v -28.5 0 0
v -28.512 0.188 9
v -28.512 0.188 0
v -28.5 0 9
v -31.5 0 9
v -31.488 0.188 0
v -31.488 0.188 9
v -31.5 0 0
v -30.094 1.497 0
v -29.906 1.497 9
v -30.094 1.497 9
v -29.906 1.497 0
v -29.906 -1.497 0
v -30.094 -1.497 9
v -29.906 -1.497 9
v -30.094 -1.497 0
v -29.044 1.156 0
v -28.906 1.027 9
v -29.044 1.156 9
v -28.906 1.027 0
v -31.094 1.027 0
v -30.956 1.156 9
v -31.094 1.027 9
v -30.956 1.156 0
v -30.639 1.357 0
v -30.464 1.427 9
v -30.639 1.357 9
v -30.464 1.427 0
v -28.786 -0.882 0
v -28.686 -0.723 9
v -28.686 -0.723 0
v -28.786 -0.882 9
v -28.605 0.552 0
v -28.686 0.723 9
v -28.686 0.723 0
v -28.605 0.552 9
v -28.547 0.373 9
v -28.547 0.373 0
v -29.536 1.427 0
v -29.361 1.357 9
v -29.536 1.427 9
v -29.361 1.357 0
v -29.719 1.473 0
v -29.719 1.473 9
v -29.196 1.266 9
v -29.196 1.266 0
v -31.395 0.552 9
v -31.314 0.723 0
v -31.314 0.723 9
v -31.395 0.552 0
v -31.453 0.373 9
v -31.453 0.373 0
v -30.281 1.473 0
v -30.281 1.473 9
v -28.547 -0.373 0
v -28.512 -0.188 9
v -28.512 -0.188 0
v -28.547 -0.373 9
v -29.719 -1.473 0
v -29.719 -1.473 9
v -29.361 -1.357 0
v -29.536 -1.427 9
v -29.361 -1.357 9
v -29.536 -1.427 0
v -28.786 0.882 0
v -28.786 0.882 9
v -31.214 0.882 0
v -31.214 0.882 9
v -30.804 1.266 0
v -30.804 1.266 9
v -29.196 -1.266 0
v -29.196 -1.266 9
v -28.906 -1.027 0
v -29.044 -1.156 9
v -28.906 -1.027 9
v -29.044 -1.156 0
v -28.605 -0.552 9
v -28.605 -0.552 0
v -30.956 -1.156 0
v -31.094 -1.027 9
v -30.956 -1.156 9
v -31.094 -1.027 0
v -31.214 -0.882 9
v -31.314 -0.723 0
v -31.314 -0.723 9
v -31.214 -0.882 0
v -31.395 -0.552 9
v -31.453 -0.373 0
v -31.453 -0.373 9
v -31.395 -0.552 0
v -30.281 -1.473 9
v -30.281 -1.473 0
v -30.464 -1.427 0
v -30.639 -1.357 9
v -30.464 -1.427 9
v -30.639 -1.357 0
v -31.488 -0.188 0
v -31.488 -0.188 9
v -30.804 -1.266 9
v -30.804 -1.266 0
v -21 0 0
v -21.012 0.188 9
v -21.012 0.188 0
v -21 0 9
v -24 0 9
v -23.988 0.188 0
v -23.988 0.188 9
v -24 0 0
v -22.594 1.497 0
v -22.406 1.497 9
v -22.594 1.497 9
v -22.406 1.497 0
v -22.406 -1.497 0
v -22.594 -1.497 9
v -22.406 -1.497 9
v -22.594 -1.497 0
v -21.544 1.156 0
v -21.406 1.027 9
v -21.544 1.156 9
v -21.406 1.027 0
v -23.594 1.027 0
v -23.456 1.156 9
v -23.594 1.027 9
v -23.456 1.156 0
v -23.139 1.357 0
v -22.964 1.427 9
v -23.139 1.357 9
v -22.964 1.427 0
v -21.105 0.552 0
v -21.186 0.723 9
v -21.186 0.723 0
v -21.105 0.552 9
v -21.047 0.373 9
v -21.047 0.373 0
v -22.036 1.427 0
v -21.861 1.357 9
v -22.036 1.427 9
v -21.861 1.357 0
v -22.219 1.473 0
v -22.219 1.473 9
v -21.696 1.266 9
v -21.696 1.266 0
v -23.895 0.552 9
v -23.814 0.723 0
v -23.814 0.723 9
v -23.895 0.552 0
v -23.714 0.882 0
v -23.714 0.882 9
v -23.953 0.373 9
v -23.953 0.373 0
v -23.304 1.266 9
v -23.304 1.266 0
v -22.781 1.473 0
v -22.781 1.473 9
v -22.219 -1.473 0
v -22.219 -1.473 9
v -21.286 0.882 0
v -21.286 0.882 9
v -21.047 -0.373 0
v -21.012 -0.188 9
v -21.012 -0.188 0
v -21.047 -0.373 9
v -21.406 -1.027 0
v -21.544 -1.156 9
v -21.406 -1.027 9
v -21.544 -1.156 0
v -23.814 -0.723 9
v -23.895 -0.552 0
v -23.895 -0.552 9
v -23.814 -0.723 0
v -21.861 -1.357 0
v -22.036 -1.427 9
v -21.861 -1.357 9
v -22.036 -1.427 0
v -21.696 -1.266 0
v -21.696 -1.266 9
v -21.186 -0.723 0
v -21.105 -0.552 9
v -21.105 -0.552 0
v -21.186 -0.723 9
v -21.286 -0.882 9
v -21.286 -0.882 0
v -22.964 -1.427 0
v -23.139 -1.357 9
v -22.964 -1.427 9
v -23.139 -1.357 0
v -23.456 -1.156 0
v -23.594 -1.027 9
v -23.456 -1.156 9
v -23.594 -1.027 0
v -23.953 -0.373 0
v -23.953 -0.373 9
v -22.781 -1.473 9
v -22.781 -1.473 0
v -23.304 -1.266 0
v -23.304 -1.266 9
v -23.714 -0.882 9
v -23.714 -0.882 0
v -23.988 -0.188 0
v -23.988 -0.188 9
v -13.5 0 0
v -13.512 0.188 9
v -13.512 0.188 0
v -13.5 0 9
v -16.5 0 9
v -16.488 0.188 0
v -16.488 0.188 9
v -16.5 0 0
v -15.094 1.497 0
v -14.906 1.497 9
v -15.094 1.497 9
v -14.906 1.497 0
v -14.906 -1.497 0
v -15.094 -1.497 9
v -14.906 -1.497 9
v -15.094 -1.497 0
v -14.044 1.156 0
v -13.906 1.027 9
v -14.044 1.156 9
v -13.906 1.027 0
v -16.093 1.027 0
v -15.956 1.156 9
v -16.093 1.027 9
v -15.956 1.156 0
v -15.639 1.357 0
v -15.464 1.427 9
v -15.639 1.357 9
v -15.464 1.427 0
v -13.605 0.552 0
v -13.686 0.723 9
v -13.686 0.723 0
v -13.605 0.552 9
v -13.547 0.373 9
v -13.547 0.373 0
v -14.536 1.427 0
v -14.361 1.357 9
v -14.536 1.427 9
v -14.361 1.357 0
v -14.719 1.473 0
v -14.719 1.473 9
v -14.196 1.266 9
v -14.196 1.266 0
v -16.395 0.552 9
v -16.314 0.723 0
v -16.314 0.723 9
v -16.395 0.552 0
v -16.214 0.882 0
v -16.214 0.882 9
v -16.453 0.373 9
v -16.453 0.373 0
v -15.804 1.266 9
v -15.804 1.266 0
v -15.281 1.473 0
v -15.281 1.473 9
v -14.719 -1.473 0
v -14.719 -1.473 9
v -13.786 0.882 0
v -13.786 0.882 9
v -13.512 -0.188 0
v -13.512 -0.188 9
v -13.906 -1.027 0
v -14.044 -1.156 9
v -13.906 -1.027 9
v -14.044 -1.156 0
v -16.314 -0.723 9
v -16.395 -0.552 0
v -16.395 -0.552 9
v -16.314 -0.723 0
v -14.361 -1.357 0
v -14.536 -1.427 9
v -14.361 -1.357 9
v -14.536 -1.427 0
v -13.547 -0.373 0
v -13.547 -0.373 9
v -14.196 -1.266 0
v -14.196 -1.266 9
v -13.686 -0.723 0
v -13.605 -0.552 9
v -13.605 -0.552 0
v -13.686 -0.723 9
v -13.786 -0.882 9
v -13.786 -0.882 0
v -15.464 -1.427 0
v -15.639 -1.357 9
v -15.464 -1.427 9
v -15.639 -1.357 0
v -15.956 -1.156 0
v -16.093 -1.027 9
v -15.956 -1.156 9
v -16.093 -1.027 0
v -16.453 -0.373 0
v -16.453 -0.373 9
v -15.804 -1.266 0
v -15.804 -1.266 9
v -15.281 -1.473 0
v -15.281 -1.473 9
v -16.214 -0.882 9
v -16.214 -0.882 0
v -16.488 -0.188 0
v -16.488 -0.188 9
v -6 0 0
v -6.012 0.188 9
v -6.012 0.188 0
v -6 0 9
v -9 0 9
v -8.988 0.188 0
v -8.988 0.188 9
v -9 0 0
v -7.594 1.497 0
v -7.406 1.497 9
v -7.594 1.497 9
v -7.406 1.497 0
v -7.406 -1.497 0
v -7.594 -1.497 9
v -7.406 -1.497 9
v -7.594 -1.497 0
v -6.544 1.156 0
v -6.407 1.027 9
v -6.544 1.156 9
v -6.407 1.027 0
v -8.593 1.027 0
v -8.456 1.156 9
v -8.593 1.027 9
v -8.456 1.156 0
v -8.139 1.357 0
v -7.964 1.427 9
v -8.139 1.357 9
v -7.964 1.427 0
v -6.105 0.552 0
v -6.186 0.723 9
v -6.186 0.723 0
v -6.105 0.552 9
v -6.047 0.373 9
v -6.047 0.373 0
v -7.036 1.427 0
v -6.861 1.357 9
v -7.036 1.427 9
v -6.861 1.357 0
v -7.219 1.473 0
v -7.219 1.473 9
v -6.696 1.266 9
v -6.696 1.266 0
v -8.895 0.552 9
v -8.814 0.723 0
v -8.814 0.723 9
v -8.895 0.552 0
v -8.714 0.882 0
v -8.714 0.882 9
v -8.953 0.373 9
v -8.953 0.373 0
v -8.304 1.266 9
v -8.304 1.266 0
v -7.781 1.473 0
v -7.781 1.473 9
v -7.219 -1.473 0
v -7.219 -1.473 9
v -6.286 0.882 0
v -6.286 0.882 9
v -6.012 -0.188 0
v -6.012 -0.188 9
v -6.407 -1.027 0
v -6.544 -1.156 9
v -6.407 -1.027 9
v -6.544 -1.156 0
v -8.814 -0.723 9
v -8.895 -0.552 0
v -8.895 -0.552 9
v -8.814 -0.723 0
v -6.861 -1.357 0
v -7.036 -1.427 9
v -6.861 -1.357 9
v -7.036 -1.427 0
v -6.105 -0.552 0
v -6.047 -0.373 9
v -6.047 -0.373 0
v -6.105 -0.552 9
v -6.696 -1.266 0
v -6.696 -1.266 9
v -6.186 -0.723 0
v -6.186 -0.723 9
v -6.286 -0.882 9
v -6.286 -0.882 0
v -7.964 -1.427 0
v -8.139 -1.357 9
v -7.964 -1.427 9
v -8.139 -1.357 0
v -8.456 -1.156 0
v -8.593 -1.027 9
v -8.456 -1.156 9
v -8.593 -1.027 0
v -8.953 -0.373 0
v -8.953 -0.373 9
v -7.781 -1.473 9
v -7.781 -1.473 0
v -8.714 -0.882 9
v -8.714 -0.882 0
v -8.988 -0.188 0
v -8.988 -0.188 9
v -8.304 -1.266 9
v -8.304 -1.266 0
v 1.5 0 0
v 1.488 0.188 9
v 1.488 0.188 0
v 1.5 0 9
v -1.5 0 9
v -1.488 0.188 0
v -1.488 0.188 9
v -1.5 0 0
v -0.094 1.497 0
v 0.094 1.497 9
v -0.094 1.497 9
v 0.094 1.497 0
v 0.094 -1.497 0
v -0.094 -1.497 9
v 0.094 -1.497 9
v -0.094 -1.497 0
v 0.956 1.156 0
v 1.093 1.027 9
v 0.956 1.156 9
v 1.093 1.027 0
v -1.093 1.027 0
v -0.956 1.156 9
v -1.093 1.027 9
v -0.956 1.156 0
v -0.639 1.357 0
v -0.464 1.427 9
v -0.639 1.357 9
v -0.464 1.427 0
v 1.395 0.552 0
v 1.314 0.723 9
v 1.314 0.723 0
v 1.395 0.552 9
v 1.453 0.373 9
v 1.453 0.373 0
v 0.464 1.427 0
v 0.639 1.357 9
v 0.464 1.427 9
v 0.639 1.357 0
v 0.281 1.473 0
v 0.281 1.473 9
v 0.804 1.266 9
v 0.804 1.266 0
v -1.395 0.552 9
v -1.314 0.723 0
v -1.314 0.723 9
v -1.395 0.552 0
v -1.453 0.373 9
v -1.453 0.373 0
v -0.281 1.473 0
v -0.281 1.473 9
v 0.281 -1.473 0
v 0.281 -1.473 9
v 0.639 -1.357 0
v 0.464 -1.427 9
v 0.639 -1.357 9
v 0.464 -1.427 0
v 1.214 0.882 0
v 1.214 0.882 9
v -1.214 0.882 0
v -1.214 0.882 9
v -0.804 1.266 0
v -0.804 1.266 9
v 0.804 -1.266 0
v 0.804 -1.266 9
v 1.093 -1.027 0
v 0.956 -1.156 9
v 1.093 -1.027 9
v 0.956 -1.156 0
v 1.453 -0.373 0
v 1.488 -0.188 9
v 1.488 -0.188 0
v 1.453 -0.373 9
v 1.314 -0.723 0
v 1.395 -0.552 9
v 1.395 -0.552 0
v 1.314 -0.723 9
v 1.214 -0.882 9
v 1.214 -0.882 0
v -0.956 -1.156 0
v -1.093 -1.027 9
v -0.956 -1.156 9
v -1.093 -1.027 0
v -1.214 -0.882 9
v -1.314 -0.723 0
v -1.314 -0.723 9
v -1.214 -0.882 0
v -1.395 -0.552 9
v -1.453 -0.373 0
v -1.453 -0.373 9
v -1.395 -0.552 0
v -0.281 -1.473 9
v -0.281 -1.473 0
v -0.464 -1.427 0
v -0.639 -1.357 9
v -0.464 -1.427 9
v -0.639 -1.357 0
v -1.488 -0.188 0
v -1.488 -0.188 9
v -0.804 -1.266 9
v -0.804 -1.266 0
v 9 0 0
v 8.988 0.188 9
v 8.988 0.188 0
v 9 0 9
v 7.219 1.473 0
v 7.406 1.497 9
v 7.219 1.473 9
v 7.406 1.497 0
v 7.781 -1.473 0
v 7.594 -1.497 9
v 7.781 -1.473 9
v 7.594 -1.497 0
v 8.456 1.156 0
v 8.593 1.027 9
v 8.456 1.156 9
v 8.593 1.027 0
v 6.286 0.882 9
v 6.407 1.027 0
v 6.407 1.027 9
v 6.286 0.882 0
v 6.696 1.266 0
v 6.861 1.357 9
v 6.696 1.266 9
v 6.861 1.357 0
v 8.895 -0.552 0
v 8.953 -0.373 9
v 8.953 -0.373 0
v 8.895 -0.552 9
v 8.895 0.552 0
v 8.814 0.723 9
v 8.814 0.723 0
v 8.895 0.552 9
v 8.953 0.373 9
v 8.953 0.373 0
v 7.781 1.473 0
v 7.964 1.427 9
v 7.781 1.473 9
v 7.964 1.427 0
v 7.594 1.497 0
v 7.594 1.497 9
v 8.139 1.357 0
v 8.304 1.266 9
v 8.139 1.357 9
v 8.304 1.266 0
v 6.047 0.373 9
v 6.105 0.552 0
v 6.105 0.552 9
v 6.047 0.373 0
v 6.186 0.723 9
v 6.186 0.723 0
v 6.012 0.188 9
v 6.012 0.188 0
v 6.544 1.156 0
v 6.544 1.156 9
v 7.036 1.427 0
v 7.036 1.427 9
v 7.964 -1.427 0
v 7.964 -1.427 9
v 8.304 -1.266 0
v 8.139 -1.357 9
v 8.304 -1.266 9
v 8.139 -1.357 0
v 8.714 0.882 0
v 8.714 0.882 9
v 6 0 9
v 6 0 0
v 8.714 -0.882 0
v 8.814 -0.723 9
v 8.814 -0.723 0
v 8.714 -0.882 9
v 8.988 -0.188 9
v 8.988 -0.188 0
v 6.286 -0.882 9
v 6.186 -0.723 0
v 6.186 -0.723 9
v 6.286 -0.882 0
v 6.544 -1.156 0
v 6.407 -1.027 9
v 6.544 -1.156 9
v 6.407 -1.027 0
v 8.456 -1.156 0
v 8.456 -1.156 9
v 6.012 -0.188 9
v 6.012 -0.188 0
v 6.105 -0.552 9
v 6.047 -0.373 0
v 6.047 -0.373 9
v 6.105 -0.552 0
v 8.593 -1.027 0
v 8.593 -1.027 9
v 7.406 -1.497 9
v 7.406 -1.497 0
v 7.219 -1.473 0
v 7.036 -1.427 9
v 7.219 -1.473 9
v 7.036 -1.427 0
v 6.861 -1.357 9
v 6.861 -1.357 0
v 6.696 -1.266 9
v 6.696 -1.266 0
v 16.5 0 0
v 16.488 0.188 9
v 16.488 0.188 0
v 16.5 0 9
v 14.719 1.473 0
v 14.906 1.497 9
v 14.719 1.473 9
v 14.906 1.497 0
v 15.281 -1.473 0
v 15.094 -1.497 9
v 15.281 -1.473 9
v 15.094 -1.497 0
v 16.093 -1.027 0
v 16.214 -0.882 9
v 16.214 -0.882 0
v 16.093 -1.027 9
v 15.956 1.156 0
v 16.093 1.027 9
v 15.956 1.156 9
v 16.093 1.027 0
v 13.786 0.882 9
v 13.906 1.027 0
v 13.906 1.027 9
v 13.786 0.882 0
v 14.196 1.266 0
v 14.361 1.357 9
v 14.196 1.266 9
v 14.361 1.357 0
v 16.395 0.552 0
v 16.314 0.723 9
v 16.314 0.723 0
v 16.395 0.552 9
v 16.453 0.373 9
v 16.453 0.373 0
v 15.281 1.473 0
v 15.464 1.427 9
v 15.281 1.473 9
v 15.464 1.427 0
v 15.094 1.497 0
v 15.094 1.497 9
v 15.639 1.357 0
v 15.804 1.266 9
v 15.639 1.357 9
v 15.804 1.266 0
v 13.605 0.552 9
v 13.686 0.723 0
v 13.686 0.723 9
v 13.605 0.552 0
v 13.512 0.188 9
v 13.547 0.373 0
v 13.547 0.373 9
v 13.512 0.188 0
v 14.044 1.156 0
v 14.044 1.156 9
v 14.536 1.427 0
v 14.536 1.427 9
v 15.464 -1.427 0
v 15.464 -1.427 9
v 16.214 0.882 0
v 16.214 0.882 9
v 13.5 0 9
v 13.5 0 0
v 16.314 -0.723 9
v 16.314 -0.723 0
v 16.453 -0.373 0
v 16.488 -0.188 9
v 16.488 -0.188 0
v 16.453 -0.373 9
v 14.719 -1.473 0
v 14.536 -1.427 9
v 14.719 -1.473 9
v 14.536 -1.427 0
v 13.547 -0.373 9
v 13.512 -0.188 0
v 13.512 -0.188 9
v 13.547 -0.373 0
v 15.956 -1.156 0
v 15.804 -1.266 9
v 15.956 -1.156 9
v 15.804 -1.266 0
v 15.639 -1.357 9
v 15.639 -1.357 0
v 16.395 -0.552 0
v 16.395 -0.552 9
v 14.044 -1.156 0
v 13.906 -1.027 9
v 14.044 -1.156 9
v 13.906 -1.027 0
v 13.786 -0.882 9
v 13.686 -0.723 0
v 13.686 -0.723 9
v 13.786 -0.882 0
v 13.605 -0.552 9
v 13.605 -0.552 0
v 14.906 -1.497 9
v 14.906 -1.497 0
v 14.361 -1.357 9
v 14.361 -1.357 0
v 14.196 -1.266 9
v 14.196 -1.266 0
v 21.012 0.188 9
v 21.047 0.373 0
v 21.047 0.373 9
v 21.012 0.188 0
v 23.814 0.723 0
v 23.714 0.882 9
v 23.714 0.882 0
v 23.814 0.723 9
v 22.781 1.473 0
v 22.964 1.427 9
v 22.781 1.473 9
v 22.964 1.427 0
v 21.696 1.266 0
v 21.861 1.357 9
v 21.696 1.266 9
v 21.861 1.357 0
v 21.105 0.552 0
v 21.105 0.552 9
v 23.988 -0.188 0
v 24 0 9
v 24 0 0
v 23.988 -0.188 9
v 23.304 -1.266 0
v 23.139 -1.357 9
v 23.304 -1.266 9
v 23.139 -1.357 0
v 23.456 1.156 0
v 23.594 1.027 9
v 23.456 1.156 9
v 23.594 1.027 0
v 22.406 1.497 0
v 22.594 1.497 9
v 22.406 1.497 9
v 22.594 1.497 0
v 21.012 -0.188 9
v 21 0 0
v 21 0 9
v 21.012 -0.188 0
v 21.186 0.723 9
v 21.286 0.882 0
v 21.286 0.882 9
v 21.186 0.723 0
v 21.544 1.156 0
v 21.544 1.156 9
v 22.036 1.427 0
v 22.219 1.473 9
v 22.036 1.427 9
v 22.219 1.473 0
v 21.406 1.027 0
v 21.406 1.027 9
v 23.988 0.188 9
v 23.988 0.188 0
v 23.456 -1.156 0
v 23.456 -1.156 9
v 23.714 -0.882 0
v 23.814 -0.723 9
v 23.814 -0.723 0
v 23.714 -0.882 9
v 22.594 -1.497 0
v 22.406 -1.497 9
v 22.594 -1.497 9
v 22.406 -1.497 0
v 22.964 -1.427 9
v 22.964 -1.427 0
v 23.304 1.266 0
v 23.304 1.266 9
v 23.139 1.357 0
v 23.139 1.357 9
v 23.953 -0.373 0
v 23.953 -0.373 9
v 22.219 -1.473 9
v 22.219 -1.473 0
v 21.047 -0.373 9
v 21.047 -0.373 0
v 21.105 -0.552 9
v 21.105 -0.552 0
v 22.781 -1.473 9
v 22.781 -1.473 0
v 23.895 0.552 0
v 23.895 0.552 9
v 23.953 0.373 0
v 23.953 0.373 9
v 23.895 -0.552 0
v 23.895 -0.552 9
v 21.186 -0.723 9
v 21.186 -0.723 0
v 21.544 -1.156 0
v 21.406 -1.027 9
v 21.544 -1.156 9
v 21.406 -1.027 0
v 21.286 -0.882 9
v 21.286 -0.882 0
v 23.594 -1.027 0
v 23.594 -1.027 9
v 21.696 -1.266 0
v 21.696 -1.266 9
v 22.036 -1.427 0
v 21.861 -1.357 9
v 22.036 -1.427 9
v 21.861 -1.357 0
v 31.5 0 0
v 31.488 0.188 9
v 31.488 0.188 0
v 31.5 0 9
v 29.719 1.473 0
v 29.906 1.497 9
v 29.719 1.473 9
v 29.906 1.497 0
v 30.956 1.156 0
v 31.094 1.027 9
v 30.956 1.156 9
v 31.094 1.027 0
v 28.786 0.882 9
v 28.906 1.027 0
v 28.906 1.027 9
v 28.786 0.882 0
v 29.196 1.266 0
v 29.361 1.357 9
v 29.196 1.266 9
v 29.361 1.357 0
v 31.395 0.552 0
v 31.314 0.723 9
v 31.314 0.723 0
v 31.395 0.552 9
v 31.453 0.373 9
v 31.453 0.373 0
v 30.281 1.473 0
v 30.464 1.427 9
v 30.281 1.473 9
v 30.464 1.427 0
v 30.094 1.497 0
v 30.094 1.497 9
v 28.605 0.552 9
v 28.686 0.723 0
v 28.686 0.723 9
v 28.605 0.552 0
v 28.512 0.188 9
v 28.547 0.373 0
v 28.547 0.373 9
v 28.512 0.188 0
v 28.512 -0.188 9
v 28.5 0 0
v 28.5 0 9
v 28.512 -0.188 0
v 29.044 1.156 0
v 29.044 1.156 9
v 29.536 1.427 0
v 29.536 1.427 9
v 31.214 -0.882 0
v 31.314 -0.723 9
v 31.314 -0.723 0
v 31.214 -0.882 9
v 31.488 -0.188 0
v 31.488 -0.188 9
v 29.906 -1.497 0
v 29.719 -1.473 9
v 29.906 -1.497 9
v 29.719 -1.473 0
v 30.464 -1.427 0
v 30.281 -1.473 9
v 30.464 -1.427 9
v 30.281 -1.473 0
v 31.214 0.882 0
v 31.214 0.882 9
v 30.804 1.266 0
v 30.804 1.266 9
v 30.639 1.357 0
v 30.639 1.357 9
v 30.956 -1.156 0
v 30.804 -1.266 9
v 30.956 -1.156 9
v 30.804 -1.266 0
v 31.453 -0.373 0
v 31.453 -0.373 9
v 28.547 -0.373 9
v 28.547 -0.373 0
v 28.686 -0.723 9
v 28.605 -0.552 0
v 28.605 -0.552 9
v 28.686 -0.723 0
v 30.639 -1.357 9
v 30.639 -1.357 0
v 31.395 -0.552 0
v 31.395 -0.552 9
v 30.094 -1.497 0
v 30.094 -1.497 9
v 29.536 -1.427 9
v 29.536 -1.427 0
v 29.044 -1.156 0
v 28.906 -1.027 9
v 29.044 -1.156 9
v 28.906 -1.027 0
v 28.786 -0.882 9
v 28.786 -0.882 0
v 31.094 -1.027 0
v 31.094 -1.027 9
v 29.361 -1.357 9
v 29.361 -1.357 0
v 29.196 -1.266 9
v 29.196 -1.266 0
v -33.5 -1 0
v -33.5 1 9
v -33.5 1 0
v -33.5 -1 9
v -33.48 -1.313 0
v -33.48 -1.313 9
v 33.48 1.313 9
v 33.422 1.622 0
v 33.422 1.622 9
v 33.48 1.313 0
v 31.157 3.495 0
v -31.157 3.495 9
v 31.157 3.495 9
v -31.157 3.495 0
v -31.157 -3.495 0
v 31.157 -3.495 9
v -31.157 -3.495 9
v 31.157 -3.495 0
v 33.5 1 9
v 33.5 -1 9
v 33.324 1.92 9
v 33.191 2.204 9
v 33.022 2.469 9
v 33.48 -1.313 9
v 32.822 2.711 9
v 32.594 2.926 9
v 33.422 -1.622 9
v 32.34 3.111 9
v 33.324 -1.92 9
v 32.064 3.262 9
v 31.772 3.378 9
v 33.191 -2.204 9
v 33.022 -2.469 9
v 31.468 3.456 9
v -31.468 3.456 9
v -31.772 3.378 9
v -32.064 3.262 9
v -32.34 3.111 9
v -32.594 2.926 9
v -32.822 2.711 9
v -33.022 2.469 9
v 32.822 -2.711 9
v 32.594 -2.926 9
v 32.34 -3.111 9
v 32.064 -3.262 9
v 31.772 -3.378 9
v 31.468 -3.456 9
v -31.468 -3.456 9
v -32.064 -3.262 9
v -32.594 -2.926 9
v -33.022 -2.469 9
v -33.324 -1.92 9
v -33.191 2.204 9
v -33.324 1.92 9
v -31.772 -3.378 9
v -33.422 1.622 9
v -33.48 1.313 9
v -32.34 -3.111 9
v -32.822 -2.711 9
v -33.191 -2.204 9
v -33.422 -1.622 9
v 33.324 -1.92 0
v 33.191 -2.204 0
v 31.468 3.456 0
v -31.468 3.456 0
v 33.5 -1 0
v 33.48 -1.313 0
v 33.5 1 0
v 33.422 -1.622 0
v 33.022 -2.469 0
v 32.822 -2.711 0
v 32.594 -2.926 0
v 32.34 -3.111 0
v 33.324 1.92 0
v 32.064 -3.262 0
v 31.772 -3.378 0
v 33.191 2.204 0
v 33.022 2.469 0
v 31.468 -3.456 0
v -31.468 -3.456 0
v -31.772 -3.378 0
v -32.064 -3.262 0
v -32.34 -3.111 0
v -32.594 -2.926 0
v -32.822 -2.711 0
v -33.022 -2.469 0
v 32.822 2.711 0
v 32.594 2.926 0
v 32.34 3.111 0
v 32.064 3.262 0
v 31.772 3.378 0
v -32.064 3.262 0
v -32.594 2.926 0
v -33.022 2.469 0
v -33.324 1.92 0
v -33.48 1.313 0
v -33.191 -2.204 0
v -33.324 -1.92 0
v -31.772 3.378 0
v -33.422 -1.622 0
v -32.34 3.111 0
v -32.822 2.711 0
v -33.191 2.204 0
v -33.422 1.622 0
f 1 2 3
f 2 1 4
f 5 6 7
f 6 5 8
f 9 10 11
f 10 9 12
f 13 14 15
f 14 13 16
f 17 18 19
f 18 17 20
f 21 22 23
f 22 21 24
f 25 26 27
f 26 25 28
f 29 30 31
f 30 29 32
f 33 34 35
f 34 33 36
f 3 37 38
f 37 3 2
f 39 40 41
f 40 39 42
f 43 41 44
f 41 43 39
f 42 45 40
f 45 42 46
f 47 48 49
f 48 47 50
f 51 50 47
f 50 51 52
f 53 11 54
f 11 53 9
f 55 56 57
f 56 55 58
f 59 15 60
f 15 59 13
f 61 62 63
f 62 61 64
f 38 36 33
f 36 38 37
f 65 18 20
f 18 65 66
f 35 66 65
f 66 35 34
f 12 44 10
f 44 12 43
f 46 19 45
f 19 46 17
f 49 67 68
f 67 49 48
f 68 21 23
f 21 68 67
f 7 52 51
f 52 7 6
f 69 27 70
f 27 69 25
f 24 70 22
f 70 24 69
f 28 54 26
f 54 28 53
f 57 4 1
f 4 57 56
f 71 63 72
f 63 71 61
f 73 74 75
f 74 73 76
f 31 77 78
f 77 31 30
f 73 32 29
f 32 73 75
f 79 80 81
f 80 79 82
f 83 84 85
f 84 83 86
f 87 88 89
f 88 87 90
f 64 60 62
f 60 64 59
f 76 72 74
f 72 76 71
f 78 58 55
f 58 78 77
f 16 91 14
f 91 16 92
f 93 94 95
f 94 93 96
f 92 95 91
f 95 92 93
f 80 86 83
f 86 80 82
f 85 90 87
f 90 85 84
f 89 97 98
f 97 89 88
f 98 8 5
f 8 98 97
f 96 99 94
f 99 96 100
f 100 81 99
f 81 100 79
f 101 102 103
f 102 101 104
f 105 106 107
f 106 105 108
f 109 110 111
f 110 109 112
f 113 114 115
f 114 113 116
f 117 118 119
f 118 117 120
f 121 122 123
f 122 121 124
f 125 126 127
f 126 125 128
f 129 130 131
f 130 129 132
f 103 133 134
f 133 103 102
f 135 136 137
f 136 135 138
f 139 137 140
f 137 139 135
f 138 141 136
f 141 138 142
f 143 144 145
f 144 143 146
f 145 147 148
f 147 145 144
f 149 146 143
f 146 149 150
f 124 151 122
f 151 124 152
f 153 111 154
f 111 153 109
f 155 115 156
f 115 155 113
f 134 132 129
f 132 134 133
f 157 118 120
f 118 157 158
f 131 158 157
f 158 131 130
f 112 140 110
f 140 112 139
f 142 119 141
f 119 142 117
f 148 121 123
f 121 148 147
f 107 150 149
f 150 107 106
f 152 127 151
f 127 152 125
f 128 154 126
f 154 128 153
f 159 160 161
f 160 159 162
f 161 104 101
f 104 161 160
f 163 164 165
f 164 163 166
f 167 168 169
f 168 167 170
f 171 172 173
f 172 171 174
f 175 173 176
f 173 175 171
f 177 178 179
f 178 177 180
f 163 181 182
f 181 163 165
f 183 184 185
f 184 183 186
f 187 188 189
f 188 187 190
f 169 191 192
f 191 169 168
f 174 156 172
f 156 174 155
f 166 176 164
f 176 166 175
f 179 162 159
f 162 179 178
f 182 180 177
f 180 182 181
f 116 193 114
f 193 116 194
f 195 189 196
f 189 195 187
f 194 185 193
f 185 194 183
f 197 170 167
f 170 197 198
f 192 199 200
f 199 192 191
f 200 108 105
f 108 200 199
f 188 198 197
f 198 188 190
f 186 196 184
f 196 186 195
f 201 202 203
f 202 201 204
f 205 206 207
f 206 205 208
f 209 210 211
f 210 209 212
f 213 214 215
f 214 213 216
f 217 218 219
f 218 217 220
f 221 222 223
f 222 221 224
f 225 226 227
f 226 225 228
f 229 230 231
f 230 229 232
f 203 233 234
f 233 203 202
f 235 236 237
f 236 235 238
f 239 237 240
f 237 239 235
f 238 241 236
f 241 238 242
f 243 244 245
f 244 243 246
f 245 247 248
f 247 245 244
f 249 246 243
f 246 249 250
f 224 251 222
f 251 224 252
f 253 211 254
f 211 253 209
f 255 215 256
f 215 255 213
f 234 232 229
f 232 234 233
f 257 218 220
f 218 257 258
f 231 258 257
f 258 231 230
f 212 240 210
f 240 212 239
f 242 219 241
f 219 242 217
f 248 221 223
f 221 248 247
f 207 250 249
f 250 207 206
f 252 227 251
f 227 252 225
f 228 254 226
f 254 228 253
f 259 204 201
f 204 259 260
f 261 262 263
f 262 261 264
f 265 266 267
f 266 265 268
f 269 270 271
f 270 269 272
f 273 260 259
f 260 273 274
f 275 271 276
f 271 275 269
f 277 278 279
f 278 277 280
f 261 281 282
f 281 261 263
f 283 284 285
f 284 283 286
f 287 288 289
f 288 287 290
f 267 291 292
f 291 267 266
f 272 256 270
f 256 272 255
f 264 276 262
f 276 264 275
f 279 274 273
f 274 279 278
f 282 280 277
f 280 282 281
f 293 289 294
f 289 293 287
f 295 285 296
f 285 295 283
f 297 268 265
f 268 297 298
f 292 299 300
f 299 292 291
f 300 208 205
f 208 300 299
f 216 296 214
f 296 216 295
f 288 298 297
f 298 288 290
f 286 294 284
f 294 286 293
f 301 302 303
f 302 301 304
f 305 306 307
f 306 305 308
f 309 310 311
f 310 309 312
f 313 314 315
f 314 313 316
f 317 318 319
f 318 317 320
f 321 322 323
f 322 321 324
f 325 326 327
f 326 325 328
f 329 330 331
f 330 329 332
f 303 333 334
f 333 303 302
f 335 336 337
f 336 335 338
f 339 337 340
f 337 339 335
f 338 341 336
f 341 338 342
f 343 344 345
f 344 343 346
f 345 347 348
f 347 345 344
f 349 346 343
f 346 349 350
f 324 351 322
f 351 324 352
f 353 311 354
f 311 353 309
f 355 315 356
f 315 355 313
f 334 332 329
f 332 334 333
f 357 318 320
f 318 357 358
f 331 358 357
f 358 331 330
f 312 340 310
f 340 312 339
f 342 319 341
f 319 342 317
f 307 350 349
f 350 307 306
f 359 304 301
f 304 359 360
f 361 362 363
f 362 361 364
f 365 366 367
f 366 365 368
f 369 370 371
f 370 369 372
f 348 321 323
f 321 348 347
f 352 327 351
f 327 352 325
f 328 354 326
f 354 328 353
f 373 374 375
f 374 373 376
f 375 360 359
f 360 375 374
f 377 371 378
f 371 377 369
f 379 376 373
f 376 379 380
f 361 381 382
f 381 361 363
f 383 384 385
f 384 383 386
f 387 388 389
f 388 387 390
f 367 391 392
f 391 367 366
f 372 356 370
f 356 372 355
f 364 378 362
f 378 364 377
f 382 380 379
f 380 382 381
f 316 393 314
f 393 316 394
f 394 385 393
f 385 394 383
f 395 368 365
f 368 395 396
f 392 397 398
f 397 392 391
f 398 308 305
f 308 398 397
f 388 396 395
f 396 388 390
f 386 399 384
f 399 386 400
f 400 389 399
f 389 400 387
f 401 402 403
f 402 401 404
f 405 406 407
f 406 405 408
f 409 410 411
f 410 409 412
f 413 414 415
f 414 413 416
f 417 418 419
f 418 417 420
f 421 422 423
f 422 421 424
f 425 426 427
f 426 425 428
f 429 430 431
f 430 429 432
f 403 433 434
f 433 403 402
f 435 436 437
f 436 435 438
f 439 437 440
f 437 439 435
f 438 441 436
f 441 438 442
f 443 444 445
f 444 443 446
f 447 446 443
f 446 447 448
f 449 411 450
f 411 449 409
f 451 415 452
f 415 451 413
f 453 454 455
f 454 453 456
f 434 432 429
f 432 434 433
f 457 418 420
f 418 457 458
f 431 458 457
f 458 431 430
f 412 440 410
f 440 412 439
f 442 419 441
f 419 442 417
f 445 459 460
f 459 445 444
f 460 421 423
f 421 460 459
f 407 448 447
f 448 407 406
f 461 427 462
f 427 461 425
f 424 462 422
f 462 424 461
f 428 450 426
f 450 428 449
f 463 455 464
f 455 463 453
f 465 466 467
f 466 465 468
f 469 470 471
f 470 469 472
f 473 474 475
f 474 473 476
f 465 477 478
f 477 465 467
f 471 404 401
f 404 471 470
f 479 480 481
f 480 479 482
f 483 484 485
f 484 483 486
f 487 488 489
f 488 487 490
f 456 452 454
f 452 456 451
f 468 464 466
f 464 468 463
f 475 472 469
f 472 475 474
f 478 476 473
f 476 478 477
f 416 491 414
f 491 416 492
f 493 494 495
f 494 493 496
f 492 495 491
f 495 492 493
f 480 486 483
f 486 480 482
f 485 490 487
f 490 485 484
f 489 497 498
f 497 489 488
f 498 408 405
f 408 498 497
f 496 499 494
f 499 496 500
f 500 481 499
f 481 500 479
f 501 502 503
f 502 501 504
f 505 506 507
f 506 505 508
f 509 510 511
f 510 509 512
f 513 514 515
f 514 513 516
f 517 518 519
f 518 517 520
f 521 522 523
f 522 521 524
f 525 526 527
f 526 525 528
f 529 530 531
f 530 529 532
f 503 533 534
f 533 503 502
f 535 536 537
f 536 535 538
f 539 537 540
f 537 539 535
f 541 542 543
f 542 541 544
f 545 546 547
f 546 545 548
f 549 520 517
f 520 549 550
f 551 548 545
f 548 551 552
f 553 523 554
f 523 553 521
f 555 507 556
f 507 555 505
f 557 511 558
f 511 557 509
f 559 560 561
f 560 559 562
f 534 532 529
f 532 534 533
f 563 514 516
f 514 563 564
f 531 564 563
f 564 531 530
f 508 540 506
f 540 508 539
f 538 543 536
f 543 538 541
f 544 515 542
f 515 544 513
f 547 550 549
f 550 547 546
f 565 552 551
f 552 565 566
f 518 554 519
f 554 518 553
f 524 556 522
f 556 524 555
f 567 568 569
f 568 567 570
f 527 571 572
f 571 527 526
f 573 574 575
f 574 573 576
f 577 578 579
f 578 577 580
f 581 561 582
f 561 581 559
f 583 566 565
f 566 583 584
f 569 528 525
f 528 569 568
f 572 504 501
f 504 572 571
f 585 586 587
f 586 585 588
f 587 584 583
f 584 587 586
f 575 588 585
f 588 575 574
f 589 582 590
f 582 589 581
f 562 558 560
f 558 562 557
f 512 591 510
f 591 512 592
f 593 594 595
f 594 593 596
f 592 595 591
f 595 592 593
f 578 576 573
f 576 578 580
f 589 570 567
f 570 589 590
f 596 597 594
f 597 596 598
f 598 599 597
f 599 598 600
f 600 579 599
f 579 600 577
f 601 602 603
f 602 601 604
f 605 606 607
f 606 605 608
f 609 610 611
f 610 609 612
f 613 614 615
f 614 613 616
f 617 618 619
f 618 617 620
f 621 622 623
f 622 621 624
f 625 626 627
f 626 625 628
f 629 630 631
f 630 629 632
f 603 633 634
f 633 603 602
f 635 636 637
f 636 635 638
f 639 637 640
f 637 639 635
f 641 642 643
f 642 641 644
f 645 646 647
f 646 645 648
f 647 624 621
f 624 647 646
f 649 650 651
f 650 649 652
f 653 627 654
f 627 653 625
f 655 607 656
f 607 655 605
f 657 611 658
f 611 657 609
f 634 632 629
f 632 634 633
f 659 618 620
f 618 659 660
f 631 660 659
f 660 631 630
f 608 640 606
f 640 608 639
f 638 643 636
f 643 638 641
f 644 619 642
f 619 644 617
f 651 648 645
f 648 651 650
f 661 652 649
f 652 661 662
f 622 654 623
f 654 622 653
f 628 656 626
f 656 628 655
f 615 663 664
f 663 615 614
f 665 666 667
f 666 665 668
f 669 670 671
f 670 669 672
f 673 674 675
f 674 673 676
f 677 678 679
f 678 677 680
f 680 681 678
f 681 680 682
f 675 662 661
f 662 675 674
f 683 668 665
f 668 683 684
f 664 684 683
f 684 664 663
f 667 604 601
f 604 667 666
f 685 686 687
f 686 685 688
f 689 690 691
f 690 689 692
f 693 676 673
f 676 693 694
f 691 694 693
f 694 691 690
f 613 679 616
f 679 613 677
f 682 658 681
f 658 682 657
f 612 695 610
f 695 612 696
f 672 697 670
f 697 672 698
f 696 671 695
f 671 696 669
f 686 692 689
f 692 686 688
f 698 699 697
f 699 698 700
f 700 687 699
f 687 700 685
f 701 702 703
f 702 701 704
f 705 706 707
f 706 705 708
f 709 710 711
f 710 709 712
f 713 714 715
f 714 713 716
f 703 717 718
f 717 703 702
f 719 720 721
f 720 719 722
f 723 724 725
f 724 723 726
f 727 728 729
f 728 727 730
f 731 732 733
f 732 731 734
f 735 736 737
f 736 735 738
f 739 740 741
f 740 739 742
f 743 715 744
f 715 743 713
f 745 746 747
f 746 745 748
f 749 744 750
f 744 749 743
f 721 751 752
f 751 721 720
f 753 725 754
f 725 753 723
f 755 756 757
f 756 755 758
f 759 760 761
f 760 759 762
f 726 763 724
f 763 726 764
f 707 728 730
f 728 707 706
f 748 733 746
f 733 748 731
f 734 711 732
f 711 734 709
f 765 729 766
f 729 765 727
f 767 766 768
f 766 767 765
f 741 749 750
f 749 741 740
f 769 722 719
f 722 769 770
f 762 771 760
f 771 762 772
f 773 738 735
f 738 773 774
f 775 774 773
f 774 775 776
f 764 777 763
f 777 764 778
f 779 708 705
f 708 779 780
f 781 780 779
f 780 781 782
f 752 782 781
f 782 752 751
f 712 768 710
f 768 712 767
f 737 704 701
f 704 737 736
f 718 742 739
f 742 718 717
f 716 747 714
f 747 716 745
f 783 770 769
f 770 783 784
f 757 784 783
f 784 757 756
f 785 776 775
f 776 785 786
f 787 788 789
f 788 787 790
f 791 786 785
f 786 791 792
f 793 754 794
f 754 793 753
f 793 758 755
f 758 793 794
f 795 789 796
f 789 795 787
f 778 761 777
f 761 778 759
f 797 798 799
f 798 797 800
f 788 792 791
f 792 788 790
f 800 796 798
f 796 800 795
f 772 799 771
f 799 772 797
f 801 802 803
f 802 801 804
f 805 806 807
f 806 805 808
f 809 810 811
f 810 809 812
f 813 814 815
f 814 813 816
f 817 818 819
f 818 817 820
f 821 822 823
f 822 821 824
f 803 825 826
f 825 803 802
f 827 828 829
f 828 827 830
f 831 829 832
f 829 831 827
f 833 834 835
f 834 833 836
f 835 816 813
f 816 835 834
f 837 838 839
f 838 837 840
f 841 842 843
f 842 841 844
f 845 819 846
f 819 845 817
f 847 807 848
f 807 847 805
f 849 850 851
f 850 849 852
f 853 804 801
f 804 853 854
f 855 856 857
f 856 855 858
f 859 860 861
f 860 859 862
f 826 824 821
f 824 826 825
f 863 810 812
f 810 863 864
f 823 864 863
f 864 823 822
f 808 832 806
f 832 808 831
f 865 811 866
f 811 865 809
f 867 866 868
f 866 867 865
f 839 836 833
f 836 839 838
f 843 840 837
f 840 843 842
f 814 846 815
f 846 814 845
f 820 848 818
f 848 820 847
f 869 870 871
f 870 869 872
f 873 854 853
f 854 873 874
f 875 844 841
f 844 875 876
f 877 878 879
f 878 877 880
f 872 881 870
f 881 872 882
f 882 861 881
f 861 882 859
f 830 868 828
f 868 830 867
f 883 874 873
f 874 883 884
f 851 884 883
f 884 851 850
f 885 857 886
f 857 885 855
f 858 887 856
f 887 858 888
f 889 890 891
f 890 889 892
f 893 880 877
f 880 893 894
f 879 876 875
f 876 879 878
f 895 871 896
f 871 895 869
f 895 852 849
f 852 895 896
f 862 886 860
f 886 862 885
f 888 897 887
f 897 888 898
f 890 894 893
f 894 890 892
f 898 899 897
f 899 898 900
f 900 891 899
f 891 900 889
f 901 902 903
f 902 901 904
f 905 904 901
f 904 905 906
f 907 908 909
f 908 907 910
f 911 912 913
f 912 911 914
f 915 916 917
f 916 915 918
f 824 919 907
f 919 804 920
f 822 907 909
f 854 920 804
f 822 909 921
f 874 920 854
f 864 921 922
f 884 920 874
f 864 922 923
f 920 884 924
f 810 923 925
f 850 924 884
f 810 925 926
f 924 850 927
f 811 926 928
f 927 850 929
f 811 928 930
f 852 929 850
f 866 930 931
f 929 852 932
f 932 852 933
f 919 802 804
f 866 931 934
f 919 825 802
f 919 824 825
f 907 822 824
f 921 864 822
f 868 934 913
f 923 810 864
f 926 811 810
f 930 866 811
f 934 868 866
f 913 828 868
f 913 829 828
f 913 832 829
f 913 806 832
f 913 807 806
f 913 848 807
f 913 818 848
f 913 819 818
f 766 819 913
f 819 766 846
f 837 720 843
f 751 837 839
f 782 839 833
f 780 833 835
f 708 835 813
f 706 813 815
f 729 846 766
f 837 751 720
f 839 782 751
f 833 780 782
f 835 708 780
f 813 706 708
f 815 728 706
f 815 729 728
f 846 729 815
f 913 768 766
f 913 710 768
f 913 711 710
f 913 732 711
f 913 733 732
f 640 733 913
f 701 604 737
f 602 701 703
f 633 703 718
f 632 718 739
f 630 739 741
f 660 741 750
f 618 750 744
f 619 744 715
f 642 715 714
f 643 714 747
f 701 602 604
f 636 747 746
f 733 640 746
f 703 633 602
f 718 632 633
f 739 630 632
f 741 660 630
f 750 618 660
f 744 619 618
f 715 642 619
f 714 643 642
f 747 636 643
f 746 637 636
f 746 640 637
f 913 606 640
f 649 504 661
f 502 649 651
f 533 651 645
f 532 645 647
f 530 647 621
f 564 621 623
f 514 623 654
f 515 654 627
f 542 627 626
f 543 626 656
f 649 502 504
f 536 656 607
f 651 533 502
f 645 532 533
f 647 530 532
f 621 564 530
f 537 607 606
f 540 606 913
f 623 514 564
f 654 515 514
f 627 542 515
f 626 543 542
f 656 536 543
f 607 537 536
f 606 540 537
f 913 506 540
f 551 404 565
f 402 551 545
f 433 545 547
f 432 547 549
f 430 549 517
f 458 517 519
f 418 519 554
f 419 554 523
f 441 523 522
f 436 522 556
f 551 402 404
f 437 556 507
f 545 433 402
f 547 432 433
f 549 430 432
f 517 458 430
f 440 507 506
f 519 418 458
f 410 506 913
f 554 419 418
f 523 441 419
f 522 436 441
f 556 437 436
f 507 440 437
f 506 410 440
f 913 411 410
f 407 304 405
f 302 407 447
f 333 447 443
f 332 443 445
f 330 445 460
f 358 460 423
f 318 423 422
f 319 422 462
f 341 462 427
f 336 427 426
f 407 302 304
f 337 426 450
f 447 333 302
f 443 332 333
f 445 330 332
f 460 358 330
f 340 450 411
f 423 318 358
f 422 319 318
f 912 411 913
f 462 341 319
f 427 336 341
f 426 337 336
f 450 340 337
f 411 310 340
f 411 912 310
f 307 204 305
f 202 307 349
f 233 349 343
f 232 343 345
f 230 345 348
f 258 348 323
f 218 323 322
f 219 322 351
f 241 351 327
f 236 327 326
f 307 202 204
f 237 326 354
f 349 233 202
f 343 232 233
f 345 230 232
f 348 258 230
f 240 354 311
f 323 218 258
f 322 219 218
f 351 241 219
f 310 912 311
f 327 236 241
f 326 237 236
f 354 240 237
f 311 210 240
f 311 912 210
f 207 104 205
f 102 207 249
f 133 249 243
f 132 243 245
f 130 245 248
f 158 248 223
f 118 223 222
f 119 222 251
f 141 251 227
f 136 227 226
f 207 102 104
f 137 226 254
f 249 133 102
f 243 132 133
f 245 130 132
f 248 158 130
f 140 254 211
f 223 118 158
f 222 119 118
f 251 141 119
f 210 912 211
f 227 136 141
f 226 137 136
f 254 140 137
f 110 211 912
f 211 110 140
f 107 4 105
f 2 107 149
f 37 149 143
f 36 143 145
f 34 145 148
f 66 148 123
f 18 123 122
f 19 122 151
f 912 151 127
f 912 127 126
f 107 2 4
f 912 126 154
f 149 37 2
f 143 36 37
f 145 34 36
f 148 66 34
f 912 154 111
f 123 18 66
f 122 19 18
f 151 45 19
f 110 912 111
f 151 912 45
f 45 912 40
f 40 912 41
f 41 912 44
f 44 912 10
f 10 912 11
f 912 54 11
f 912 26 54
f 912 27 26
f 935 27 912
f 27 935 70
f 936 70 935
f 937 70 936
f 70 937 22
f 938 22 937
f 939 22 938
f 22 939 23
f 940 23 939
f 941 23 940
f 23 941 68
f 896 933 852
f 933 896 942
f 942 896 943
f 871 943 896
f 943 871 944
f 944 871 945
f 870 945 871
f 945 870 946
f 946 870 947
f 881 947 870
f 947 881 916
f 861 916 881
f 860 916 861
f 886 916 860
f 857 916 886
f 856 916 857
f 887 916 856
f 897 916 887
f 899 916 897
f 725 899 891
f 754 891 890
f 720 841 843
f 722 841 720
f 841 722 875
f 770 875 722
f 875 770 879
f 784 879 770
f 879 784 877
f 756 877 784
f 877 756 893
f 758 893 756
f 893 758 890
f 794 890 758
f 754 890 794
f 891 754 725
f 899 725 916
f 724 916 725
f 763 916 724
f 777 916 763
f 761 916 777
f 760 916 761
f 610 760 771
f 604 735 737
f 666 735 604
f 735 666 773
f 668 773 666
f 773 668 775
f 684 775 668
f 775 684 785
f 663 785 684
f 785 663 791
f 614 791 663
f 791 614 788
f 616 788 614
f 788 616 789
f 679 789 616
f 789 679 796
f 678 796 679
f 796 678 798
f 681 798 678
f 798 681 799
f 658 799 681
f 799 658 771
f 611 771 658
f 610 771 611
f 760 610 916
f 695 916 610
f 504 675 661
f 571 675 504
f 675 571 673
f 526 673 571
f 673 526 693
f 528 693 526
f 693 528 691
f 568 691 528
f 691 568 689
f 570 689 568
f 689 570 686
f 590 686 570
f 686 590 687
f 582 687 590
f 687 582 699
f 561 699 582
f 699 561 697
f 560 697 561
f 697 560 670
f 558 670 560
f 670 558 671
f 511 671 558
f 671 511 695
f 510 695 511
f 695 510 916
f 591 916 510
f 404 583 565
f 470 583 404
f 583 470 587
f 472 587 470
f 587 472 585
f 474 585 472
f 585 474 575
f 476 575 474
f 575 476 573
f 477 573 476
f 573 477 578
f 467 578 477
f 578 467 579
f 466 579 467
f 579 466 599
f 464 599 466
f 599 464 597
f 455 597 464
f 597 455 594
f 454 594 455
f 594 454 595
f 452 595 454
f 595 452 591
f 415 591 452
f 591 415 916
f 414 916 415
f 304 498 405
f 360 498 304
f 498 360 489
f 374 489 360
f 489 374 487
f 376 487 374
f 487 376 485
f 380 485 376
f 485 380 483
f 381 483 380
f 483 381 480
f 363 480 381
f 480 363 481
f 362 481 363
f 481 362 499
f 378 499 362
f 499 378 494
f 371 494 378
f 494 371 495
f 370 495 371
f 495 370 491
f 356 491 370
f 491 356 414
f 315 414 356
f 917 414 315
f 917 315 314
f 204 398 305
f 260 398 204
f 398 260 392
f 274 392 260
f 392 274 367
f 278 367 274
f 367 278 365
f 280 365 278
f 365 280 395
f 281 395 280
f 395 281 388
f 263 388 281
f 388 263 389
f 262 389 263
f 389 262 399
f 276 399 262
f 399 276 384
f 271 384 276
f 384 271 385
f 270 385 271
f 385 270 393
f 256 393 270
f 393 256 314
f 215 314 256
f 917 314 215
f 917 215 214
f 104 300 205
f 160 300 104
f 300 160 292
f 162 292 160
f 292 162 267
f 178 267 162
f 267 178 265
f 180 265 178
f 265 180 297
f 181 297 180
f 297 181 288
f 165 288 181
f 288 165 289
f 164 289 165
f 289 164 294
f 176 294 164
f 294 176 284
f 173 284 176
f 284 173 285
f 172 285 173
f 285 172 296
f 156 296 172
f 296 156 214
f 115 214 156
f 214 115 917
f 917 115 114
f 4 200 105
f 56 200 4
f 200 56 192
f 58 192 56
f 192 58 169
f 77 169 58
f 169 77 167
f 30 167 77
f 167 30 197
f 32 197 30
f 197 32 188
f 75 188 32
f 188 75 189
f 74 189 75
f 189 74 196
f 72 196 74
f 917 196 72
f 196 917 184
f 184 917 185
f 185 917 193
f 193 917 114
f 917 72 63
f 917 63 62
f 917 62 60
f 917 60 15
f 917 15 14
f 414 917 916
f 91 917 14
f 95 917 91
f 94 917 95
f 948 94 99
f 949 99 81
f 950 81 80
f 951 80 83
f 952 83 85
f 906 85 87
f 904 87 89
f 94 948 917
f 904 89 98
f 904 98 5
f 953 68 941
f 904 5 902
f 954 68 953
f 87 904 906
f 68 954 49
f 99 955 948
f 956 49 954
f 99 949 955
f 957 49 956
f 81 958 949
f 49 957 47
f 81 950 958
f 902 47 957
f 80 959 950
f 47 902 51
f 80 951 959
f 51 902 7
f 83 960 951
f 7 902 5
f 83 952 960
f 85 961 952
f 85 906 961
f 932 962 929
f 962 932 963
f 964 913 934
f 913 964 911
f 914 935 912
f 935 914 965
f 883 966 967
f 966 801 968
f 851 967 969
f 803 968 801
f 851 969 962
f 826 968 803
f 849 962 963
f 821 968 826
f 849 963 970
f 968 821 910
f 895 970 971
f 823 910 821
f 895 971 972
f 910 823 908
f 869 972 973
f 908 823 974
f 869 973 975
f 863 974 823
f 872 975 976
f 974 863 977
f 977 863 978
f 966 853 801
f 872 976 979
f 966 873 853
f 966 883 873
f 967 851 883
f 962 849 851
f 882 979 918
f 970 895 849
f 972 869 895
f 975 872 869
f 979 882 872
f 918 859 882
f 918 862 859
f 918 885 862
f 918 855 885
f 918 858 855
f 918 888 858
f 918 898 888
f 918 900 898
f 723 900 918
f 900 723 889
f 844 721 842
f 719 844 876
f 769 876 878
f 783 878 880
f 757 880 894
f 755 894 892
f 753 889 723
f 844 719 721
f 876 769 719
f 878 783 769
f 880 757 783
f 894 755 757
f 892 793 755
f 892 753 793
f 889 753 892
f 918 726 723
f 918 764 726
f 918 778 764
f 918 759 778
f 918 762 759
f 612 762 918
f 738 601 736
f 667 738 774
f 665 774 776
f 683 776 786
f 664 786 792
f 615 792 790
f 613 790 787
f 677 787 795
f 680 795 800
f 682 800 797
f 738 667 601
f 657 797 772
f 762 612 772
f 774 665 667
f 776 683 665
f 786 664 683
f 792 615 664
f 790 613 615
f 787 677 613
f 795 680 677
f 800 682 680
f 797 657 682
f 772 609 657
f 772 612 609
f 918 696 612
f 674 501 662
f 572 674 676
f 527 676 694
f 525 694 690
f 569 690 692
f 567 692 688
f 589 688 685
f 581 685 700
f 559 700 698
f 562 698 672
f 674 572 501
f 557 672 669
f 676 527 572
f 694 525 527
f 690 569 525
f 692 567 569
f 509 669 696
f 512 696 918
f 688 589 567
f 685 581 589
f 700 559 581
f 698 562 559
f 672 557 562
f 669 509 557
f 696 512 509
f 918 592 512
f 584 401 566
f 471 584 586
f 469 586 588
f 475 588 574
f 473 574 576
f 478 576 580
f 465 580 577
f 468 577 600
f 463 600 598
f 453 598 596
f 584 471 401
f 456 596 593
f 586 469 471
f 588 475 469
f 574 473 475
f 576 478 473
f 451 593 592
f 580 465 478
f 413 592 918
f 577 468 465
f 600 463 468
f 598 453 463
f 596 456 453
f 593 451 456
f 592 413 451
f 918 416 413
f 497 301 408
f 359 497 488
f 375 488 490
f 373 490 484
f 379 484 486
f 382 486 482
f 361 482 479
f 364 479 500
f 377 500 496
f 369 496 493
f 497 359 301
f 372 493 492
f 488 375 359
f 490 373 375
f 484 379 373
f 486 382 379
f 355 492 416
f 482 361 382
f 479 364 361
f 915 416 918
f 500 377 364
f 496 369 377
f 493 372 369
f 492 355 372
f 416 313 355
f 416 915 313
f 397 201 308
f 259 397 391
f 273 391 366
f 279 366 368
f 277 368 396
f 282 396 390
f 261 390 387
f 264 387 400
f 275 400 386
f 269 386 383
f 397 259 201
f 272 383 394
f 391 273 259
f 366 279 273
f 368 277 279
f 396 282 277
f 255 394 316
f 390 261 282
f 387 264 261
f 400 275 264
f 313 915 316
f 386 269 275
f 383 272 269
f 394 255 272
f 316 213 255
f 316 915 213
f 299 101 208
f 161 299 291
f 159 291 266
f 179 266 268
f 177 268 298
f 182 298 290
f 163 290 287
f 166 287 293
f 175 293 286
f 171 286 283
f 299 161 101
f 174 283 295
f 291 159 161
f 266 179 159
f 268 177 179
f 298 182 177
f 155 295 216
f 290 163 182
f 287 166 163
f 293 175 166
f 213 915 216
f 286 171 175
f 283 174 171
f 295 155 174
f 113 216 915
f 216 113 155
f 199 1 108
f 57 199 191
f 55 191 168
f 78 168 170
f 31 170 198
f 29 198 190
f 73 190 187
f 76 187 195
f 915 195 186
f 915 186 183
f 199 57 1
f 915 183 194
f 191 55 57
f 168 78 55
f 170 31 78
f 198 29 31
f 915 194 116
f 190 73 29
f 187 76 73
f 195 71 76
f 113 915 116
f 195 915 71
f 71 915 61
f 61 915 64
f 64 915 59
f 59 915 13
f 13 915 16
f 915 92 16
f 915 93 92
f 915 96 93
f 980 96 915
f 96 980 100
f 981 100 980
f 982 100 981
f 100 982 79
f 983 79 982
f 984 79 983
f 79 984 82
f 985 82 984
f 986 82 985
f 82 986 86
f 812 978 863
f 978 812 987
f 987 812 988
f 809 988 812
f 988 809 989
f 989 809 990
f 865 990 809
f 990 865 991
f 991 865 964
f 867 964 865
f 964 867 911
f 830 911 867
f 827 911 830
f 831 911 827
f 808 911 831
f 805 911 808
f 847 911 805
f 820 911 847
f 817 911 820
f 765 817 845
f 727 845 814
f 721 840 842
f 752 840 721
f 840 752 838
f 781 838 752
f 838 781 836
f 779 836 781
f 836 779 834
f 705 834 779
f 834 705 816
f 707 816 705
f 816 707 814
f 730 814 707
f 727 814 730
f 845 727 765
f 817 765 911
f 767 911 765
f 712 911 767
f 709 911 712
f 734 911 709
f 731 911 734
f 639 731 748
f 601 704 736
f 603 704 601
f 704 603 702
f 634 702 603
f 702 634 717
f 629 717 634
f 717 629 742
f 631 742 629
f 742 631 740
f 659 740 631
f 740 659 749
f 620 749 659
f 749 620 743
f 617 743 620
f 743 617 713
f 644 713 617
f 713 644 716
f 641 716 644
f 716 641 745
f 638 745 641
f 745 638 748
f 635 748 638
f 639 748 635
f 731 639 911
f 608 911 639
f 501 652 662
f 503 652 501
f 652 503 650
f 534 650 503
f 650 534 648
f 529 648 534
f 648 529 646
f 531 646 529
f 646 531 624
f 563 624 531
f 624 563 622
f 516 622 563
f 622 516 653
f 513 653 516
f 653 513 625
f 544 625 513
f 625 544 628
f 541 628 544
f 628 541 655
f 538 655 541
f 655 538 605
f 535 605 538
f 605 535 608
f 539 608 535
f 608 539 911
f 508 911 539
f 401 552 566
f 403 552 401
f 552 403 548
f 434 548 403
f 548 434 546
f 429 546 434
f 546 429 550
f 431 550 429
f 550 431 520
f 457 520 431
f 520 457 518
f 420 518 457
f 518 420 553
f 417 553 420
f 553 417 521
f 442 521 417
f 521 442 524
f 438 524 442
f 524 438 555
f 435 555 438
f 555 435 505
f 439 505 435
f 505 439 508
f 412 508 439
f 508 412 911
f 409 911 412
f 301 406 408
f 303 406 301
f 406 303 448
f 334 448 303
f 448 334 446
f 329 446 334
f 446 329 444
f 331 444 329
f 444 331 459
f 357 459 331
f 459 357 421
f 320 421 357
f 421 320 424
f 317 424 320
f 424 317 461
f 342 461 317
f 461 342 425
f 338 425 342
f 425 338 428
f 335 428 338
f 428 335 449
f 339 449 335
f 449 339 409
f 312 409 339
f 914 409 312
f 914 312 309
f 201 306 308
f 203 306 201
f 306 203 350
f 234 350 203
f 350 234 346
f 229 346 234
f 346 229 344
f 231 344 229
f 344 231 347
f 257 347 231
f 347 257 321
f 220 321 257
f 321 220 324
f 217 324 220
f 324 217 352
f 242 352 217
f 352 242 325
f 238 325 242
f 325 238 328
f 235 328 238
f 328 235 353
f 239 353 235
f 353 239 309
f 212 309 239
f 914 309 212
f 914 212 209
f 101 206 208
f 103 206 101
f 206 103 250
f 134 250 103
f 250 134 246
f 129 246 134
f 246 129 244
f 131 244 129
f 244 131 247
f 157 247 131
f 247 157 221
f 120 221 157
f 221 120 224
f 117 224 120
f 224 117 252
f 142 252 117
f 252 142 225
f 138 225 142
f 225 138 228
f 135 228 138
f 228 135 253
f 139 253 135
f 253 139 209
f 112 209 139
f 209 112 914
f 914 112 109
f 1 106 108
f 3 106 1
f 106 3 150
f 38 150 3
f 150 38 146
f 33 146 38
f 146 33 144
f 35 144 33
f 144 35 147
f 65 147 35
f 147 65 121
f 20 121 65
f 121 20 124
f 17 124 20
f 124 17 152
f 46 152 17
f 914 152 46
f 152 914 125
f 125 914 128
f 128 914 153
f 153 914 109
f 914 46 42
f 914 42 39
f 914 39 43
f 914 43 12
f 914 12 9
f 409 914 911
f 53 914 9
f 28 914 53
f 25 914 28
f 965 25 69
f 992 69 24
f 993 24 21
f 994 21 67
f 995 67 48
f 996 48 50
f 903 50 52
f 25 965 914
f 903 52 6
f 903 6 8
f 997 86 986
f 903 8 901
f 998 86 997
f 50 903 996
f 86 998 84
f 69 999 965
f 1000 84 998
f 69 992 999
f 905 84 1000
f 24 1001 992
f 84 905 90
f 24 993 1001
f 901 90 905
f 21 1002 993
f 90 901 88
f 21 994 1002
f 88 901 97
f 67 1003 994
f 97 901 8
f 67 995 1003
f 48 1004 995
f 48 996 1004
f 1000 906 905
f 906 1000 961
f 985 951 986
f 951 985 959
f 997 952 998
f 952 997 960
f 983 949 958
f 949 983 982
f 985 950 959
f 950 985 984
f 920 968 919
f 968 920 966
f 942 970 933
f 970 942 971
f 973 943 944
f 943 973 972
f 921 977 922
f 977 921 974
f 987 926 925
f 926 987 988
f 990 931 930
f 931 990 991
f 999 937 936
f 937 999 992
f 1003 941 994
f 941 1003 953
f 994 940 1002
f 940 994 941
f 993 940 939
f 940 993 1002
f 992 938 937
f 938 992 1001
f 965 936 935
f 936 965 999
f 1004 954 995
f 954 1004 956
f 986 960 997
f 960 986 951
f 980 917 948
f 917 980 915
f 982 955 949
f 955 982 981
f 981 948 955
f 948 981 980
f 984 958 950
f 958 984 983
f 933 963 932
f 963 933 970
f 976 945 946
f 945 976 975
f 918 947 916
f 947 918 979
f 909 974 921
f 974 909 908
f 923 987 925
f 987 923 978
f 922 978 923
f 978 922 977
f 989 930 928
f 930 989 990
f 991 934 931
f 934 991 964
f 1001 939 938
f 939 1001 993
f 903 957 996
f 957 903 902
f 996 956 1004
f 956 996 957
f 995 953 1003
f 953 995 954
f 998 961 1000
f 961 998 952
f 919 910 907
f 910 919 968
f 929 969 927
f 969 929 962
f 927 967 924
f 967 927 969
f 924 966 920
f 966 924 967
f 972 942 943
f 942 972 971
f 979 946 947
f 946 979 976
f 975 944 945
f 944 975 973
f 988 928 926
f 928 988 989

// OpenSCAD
$fn = 50;


difference() {
	union() {
		translate(v = [0, 0, 0]) {
			rotate(a = [0, 0, 0]) {
				hull() {
					translate(v = [-31.0000000000, 1.0000000000, 0]) {
						rotate(a = [0, 0, 0]) {
							translate(v = [0, 0, 0]) {
								rotate(a = [0, 0, 0]) {
									cylinder(h = 9, r = 2.5000000000);
								}
							}
						}
					}
					translate(v = [31.0000000000, 1.0000000000, 0]) {
						rotate(a = [0, 0, 0]) {
							translate(v = [0, 0, 0]) {
								rotate(a = [0, 0, 0]) {
									cylinder(h = 9, r = 2.5000000000);
								}
							}
						}
					}
					translate(v = [-31.0000000000, -1.0000000000, 0]) {
						rotate(a = [0, 0, 0]) {
							translate(v = [0, 0, 0]) {
								rotate(a = [0, 0, 0]) {
									cylinder(h = 9, r = 2.5000000000);
								}
							}
						}
					}
					translate(v = [31.0000000000, -1.0000000000, 0]) {
						rotate(a = [0, 0, 0]) {
							translate(v = [0, 0, 0]) {
								rotate(a = [0, 0, 0]) {
									cylinder(h = 9, r = 2.5000000000);
								}
							}
						}
					}
				}
			}
		}
	}
	union() {
		translate(v = [-30.0000000000, 0.0000000000, 0]) {
			rotate(a = [0, 0, 0]) {
				translate(v = [0, 0, -50]) {
					rotate(a = [0, 0, 0]) {
						cylinder(h = 100, r = 1.5000000000);
					}
				}
			}
		}
		translate(v = [-22.5000000000, 0.0000000000, 0]) {
			rotate(a = [0, 0, 0]) {
				translate(v = [0, 0, -50]) {
					rotate(a = [0, 0, 0]) {
						cylinder(h = 100, r = 1.5000000000);
					}
				}
			}
		}
		translate(v = [-15.0000000000, 0.0000000000, 0]) {
			rotate(a = [0, 0, 0]) {
				translate(v = [0, 0, -50]) {
					rotate(a = [0, 0, 0]) {
						cylinder(h = 100, r = 1.5000000000);
					}
				}
			}
		}
		translate(v = [-7.5000000000, 0.0000000000, 0]) {
			rotate(a = [0, 0, 0]) {
				translate(v = [0, 0, -50]) {
					rotate(a = [0, 0, 0]) {
						cylinder(h = 100, r = 1.5000000000);
					}
				}
			}
		}
		translate(v = [0.0000000000, 0.0000000000, 0]) {
			rotate(a = [0, 0, 0]) {
				translate(v = [0, 0, -50]) {
					rotate(a = [0, 0, 0]) {
						cylinder(h = 100, r = 1.5000000000);
					}
				}
			}
		}
		translate(v = [7.5000000000, 0.0000000000, 0]) {
			rotate(a = [0, 0, 0]) {
				translate(v = [0, 0, -50]) {
					rotate(a = [0, 0, 0]) {
						cylinder(h = 100, r = 1.5000000000);
					}
				}
			}
		}
		translate(v = [15.0000000000, 0.0000000000, 0]) {
			rotate(a = [0, 0, 0]) {
				translate(v = [0, 0, -50]) {
					rotate(a = [0, 0, 0]) {
						cylinder(h = 100, r = 1.5000000000);
					}
				}
			}
		}
		translate(v = [22.5000000000, 0.0000000000, 0]) {
			rotate(a = [0, 0, 0]) {
				translate(v = [0, 0, -50]) {
					rotate(a = [0, 0, 0]) {
						cylinder(h = 100, r = 1.5000000000);
					}
				}
			}
		}
		translate(v = [30.0000000000, 0.0000000000, 0]) {
			rotate(a = [0, 0, 0]) {
				translate(v = [0, 0, -50]) {
					rotate(a = [0, 0, 0]) {
						cylinder(h = 100, r = 1.5000000000);
					}
				}
			}
		}
	}
}
